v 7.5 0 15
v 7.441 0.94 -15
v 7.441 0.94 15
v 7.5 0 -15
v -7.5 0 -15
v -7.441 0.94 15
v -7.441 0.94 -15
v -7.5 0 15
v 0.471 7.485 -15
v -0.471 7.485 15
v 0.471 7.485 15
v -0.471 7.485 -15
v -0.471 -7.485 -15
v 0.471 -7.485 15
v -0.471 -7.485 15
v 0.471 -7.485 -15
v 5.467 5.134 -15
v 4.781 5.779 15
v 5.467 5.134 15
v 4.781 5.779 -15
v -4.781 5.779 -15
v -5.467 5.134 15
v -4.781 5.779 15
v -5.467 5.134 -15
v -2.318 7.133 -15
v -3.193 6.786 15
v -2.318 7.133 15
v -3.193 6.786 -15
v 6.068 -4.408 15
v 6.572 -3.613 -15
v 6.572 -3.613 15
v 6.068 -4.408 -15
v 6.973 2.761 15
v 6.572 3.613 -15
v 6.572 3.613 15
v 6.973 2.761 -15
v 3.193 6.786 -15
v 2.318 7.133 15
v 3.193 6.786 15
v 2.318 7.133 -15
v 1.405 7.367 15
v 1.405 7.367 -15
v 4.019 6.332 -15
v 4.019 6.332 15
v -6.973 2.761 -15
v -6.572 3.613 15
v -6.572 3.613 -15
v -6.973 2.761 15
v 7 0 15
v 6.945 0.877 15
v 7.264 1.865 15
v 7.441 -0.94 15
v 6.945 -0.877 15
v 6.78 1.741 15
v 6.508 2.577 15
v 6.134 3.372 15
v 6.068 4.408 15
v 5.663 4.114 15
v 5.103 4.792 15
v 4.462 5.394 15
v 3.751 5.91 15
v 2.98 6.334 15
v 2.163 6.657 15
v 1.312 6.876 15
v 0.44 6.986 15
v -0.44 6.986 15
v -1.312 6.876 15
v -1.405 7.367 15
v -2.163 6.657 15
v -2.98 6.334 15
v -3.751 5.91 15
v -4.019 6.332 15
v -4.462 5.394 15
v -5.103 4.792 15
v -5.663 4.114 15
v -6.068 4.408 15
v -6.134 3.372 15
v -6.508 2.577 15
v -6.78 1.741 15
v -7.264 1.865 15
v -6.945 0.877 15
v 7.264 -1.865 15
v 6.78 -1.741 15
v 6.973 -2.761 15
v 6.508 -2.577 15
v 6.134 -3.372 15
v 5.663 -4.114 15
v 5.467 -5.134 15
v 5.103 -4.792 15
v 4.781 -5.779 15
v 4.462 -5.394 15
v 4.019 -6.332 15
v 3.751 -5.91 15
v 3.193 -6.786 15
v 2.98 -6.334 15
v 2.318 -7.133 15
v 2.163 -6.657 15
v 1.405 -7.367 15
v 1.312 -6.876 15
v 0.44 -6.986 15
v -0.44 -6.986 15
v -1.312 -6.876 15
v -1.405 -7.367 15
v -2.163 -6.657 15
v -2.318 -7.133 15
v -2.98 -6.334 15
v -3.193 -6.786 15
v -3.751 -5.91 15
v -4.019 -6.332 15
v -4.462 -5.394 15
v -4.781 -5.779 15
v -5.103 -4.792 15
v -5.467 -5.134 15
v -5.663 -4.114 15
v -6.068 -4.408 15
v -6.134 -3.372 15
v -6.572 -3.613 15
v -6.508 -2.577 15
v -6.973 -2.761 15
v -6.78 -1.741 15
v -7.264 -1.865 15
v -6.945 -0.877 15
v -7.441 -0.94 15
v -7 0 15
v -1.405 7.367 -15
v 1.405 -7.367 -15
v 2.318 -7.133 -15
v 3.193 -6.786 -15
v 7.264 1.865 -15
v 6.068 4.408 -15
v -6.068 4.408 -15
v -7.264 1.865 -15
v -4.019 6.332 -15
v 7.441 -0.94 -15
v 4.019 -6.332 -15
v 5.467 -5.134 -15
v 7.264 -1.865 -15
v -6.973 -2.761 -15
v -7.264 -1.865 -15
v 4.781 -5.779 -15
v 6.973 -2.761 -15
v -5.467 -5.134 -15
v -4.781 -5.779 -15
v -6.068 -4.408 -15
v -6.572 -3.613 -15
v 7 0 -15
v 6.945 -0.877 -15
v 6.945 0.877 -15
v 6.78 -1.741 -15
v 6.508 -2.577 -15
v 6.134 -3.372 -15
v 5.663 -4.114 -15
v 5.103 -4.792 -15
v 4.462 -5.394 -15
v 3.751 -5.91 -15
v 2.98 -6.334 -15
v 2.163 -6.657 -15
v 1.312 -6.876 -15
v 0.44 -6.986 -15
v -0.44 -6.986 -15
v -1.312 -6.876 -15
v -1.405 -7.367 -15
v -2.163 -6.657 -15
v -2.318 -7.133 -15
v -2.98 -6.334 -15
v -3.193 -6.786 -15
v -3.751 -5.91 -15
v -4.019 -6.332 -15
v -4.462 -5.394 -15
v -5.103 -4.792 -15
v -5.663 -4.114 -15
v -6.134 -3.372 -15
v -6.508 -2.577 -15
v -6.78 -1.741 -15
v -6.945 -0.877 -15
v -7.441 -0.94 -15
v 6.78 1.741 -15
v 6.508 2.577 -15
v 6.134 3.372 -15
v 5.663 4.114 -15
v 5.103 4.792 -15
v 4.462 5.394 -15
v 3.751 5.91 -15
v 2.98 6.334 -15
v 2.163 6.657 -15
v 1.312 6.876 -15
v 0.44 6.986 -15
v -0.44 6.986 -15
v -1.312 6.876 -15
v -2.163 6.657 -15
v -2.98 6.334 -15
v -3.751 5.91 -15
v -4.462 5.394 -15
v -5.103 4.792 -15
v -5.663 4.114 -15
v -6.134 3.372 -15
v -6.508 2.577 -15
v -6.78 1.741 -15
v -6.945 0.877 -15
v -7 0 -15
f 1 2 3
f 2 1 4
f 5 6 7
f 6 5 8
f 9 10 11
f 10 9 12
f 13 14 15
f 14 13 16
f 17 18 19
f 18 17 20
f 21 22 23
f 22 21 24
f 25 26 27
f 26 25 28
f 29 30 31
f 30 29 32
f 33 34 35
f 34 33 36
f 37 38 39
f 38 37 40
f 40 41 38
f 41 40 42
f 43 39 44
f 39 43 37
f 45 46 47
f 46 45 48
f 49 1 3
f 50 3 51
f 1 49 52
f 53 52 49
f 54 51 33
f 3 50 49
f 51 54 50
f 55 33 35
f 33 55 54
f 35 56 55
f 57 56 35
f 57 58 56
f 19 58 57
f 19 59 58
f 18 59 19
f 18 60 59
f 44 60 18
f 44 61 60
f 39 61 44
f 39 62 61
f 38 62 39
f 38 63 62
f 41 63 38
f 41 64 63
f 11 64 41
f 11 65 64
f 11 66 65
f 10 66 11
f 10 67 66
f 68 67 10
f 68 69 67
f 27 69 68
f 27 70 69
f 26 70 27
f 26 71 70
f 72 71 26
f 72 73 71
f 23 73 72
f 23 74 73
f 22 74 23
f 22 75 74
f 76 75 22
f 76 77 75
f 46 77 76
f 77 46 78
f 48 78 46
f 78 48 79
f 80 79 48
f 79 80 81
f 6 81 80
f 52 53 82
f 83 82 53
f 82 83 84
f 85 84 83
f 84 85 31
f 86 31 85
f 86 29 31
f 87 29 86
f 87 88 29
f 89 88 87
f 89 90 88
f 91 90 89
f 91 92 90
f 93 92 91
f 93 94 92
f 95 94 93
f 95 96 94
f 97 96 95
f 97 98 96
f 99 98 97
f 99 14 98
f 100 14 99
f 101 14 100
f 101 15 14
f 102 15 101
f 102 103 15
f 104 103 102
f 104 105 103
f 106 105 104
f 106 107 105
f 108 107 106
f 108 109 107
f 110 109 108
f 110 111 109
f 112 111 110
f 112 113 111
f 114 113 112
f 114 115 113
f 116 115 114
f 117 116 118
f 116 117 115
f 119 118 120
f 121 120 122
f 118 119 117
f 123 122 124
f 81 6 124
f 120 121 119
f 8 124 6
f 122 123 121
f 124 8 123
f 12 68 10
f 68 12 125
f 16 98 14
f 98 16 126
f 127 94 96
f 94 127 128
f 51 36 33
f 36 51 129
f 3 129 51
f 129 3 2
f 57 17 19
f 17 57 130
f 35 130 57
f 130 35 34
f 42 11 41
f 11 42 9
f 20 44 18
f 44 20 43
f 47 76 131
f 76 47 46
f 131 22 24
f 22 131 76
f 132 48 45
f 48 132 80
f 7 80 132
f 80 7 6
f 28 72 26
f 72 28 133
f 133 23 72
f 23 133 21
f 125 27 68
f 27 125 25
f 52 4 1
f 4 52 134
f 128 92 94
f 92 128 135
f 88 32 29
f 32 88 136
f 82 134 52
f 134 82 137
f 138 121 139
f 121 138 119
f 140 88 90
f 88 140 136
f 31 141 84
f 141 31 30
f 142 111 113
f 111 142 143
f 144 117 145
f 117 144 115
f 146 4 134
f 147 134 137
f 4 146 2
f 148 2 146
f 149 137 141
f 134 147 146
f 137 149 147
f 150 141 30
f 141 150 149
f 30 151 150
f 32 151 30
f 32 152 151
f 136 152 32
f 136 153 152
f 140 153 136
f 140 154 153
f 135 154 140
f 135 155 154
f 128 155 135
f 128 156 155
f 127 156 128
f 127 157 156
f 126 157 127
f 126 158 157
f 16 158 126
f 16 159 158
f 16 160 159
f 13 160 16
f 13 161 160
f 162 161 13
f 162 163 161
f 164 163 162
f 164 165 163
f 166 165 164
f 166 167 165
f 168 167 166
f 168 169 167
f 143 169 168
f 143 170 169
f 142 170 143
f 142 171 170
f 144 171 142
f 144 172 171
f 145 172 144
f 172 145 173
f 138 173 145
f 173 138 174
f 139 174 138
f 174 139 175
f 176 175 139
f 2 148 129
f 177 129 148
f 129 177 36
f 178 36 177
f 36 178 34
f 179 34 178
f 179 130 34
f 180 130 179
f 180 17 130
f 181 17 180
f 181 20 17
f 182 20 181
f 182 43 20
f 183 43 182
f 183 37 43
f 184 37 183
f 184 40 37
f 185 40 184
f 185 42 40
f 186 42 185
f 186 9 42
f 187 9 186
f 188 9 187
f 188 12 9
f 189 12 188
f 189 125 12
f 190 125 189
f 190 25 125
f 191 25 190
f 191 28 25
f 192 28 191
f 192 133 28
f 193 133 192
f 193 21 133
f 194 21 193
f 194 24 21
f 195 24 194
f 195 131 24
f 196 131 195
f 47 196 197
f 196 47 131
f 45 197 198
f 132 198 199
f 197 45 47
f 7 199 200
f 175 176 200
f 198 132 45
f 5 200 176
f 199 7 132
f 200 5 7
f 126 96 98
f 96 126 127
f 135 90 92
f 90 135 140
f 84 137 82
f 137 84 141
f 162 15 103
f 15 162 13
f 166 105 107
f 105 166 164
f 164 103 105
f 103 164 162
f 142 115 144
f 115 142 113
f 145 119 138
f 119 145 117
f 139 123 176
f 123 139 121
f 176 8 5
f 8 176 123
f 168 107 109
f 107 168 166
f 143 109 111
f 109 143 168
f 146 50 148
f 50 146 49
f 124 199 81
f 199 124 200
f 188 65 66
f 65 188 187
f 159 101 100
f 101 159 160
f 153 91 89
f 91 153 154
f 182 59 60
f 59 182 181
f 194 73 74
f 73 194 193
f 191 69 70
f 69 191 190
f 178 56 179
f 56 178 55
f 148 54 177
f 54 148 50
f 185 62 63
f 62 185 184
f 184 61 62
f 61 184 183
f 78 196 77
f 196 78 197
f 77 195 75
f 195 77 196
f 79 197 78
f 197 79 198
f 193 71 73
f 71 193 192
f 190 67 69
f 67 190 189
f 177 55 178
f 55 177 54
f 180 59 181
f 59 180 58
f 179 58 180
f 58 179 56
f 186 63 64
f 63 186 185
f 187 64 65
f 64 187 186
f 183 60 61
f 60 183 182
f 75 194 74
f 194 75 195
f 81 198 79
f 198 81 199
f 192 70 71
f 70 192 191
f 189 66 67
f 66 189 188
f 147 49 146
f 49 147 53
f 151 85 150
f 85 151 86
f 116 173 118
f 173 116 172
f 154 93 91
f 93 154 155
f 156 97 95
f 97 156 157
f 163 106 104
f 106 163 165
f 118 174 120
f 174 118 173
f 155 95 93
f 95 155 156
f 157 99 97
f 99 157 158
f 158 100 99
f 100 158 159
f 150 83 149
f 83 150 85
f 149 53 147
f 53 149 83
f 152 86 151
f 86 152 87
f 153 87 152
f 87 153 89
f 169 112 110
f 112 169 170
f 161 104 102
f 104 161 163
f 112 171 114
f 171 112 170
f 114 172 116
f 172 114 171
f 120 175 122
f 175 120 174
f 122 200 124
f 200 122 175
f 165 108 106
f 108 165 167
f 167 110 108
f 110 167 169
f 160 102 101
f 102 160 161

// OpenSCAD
$fn = 50;


difference() {
	union() {
		translate(v = [0, 0, -15.0000000000]) {
			cylinder(h = 30, r = 7.5000000000);
		}
	}
	union() {
		translate(v = [0, 0, -100.0000000000]) {
			cylinder(h = 200, r = 7);
		}
	}
}
